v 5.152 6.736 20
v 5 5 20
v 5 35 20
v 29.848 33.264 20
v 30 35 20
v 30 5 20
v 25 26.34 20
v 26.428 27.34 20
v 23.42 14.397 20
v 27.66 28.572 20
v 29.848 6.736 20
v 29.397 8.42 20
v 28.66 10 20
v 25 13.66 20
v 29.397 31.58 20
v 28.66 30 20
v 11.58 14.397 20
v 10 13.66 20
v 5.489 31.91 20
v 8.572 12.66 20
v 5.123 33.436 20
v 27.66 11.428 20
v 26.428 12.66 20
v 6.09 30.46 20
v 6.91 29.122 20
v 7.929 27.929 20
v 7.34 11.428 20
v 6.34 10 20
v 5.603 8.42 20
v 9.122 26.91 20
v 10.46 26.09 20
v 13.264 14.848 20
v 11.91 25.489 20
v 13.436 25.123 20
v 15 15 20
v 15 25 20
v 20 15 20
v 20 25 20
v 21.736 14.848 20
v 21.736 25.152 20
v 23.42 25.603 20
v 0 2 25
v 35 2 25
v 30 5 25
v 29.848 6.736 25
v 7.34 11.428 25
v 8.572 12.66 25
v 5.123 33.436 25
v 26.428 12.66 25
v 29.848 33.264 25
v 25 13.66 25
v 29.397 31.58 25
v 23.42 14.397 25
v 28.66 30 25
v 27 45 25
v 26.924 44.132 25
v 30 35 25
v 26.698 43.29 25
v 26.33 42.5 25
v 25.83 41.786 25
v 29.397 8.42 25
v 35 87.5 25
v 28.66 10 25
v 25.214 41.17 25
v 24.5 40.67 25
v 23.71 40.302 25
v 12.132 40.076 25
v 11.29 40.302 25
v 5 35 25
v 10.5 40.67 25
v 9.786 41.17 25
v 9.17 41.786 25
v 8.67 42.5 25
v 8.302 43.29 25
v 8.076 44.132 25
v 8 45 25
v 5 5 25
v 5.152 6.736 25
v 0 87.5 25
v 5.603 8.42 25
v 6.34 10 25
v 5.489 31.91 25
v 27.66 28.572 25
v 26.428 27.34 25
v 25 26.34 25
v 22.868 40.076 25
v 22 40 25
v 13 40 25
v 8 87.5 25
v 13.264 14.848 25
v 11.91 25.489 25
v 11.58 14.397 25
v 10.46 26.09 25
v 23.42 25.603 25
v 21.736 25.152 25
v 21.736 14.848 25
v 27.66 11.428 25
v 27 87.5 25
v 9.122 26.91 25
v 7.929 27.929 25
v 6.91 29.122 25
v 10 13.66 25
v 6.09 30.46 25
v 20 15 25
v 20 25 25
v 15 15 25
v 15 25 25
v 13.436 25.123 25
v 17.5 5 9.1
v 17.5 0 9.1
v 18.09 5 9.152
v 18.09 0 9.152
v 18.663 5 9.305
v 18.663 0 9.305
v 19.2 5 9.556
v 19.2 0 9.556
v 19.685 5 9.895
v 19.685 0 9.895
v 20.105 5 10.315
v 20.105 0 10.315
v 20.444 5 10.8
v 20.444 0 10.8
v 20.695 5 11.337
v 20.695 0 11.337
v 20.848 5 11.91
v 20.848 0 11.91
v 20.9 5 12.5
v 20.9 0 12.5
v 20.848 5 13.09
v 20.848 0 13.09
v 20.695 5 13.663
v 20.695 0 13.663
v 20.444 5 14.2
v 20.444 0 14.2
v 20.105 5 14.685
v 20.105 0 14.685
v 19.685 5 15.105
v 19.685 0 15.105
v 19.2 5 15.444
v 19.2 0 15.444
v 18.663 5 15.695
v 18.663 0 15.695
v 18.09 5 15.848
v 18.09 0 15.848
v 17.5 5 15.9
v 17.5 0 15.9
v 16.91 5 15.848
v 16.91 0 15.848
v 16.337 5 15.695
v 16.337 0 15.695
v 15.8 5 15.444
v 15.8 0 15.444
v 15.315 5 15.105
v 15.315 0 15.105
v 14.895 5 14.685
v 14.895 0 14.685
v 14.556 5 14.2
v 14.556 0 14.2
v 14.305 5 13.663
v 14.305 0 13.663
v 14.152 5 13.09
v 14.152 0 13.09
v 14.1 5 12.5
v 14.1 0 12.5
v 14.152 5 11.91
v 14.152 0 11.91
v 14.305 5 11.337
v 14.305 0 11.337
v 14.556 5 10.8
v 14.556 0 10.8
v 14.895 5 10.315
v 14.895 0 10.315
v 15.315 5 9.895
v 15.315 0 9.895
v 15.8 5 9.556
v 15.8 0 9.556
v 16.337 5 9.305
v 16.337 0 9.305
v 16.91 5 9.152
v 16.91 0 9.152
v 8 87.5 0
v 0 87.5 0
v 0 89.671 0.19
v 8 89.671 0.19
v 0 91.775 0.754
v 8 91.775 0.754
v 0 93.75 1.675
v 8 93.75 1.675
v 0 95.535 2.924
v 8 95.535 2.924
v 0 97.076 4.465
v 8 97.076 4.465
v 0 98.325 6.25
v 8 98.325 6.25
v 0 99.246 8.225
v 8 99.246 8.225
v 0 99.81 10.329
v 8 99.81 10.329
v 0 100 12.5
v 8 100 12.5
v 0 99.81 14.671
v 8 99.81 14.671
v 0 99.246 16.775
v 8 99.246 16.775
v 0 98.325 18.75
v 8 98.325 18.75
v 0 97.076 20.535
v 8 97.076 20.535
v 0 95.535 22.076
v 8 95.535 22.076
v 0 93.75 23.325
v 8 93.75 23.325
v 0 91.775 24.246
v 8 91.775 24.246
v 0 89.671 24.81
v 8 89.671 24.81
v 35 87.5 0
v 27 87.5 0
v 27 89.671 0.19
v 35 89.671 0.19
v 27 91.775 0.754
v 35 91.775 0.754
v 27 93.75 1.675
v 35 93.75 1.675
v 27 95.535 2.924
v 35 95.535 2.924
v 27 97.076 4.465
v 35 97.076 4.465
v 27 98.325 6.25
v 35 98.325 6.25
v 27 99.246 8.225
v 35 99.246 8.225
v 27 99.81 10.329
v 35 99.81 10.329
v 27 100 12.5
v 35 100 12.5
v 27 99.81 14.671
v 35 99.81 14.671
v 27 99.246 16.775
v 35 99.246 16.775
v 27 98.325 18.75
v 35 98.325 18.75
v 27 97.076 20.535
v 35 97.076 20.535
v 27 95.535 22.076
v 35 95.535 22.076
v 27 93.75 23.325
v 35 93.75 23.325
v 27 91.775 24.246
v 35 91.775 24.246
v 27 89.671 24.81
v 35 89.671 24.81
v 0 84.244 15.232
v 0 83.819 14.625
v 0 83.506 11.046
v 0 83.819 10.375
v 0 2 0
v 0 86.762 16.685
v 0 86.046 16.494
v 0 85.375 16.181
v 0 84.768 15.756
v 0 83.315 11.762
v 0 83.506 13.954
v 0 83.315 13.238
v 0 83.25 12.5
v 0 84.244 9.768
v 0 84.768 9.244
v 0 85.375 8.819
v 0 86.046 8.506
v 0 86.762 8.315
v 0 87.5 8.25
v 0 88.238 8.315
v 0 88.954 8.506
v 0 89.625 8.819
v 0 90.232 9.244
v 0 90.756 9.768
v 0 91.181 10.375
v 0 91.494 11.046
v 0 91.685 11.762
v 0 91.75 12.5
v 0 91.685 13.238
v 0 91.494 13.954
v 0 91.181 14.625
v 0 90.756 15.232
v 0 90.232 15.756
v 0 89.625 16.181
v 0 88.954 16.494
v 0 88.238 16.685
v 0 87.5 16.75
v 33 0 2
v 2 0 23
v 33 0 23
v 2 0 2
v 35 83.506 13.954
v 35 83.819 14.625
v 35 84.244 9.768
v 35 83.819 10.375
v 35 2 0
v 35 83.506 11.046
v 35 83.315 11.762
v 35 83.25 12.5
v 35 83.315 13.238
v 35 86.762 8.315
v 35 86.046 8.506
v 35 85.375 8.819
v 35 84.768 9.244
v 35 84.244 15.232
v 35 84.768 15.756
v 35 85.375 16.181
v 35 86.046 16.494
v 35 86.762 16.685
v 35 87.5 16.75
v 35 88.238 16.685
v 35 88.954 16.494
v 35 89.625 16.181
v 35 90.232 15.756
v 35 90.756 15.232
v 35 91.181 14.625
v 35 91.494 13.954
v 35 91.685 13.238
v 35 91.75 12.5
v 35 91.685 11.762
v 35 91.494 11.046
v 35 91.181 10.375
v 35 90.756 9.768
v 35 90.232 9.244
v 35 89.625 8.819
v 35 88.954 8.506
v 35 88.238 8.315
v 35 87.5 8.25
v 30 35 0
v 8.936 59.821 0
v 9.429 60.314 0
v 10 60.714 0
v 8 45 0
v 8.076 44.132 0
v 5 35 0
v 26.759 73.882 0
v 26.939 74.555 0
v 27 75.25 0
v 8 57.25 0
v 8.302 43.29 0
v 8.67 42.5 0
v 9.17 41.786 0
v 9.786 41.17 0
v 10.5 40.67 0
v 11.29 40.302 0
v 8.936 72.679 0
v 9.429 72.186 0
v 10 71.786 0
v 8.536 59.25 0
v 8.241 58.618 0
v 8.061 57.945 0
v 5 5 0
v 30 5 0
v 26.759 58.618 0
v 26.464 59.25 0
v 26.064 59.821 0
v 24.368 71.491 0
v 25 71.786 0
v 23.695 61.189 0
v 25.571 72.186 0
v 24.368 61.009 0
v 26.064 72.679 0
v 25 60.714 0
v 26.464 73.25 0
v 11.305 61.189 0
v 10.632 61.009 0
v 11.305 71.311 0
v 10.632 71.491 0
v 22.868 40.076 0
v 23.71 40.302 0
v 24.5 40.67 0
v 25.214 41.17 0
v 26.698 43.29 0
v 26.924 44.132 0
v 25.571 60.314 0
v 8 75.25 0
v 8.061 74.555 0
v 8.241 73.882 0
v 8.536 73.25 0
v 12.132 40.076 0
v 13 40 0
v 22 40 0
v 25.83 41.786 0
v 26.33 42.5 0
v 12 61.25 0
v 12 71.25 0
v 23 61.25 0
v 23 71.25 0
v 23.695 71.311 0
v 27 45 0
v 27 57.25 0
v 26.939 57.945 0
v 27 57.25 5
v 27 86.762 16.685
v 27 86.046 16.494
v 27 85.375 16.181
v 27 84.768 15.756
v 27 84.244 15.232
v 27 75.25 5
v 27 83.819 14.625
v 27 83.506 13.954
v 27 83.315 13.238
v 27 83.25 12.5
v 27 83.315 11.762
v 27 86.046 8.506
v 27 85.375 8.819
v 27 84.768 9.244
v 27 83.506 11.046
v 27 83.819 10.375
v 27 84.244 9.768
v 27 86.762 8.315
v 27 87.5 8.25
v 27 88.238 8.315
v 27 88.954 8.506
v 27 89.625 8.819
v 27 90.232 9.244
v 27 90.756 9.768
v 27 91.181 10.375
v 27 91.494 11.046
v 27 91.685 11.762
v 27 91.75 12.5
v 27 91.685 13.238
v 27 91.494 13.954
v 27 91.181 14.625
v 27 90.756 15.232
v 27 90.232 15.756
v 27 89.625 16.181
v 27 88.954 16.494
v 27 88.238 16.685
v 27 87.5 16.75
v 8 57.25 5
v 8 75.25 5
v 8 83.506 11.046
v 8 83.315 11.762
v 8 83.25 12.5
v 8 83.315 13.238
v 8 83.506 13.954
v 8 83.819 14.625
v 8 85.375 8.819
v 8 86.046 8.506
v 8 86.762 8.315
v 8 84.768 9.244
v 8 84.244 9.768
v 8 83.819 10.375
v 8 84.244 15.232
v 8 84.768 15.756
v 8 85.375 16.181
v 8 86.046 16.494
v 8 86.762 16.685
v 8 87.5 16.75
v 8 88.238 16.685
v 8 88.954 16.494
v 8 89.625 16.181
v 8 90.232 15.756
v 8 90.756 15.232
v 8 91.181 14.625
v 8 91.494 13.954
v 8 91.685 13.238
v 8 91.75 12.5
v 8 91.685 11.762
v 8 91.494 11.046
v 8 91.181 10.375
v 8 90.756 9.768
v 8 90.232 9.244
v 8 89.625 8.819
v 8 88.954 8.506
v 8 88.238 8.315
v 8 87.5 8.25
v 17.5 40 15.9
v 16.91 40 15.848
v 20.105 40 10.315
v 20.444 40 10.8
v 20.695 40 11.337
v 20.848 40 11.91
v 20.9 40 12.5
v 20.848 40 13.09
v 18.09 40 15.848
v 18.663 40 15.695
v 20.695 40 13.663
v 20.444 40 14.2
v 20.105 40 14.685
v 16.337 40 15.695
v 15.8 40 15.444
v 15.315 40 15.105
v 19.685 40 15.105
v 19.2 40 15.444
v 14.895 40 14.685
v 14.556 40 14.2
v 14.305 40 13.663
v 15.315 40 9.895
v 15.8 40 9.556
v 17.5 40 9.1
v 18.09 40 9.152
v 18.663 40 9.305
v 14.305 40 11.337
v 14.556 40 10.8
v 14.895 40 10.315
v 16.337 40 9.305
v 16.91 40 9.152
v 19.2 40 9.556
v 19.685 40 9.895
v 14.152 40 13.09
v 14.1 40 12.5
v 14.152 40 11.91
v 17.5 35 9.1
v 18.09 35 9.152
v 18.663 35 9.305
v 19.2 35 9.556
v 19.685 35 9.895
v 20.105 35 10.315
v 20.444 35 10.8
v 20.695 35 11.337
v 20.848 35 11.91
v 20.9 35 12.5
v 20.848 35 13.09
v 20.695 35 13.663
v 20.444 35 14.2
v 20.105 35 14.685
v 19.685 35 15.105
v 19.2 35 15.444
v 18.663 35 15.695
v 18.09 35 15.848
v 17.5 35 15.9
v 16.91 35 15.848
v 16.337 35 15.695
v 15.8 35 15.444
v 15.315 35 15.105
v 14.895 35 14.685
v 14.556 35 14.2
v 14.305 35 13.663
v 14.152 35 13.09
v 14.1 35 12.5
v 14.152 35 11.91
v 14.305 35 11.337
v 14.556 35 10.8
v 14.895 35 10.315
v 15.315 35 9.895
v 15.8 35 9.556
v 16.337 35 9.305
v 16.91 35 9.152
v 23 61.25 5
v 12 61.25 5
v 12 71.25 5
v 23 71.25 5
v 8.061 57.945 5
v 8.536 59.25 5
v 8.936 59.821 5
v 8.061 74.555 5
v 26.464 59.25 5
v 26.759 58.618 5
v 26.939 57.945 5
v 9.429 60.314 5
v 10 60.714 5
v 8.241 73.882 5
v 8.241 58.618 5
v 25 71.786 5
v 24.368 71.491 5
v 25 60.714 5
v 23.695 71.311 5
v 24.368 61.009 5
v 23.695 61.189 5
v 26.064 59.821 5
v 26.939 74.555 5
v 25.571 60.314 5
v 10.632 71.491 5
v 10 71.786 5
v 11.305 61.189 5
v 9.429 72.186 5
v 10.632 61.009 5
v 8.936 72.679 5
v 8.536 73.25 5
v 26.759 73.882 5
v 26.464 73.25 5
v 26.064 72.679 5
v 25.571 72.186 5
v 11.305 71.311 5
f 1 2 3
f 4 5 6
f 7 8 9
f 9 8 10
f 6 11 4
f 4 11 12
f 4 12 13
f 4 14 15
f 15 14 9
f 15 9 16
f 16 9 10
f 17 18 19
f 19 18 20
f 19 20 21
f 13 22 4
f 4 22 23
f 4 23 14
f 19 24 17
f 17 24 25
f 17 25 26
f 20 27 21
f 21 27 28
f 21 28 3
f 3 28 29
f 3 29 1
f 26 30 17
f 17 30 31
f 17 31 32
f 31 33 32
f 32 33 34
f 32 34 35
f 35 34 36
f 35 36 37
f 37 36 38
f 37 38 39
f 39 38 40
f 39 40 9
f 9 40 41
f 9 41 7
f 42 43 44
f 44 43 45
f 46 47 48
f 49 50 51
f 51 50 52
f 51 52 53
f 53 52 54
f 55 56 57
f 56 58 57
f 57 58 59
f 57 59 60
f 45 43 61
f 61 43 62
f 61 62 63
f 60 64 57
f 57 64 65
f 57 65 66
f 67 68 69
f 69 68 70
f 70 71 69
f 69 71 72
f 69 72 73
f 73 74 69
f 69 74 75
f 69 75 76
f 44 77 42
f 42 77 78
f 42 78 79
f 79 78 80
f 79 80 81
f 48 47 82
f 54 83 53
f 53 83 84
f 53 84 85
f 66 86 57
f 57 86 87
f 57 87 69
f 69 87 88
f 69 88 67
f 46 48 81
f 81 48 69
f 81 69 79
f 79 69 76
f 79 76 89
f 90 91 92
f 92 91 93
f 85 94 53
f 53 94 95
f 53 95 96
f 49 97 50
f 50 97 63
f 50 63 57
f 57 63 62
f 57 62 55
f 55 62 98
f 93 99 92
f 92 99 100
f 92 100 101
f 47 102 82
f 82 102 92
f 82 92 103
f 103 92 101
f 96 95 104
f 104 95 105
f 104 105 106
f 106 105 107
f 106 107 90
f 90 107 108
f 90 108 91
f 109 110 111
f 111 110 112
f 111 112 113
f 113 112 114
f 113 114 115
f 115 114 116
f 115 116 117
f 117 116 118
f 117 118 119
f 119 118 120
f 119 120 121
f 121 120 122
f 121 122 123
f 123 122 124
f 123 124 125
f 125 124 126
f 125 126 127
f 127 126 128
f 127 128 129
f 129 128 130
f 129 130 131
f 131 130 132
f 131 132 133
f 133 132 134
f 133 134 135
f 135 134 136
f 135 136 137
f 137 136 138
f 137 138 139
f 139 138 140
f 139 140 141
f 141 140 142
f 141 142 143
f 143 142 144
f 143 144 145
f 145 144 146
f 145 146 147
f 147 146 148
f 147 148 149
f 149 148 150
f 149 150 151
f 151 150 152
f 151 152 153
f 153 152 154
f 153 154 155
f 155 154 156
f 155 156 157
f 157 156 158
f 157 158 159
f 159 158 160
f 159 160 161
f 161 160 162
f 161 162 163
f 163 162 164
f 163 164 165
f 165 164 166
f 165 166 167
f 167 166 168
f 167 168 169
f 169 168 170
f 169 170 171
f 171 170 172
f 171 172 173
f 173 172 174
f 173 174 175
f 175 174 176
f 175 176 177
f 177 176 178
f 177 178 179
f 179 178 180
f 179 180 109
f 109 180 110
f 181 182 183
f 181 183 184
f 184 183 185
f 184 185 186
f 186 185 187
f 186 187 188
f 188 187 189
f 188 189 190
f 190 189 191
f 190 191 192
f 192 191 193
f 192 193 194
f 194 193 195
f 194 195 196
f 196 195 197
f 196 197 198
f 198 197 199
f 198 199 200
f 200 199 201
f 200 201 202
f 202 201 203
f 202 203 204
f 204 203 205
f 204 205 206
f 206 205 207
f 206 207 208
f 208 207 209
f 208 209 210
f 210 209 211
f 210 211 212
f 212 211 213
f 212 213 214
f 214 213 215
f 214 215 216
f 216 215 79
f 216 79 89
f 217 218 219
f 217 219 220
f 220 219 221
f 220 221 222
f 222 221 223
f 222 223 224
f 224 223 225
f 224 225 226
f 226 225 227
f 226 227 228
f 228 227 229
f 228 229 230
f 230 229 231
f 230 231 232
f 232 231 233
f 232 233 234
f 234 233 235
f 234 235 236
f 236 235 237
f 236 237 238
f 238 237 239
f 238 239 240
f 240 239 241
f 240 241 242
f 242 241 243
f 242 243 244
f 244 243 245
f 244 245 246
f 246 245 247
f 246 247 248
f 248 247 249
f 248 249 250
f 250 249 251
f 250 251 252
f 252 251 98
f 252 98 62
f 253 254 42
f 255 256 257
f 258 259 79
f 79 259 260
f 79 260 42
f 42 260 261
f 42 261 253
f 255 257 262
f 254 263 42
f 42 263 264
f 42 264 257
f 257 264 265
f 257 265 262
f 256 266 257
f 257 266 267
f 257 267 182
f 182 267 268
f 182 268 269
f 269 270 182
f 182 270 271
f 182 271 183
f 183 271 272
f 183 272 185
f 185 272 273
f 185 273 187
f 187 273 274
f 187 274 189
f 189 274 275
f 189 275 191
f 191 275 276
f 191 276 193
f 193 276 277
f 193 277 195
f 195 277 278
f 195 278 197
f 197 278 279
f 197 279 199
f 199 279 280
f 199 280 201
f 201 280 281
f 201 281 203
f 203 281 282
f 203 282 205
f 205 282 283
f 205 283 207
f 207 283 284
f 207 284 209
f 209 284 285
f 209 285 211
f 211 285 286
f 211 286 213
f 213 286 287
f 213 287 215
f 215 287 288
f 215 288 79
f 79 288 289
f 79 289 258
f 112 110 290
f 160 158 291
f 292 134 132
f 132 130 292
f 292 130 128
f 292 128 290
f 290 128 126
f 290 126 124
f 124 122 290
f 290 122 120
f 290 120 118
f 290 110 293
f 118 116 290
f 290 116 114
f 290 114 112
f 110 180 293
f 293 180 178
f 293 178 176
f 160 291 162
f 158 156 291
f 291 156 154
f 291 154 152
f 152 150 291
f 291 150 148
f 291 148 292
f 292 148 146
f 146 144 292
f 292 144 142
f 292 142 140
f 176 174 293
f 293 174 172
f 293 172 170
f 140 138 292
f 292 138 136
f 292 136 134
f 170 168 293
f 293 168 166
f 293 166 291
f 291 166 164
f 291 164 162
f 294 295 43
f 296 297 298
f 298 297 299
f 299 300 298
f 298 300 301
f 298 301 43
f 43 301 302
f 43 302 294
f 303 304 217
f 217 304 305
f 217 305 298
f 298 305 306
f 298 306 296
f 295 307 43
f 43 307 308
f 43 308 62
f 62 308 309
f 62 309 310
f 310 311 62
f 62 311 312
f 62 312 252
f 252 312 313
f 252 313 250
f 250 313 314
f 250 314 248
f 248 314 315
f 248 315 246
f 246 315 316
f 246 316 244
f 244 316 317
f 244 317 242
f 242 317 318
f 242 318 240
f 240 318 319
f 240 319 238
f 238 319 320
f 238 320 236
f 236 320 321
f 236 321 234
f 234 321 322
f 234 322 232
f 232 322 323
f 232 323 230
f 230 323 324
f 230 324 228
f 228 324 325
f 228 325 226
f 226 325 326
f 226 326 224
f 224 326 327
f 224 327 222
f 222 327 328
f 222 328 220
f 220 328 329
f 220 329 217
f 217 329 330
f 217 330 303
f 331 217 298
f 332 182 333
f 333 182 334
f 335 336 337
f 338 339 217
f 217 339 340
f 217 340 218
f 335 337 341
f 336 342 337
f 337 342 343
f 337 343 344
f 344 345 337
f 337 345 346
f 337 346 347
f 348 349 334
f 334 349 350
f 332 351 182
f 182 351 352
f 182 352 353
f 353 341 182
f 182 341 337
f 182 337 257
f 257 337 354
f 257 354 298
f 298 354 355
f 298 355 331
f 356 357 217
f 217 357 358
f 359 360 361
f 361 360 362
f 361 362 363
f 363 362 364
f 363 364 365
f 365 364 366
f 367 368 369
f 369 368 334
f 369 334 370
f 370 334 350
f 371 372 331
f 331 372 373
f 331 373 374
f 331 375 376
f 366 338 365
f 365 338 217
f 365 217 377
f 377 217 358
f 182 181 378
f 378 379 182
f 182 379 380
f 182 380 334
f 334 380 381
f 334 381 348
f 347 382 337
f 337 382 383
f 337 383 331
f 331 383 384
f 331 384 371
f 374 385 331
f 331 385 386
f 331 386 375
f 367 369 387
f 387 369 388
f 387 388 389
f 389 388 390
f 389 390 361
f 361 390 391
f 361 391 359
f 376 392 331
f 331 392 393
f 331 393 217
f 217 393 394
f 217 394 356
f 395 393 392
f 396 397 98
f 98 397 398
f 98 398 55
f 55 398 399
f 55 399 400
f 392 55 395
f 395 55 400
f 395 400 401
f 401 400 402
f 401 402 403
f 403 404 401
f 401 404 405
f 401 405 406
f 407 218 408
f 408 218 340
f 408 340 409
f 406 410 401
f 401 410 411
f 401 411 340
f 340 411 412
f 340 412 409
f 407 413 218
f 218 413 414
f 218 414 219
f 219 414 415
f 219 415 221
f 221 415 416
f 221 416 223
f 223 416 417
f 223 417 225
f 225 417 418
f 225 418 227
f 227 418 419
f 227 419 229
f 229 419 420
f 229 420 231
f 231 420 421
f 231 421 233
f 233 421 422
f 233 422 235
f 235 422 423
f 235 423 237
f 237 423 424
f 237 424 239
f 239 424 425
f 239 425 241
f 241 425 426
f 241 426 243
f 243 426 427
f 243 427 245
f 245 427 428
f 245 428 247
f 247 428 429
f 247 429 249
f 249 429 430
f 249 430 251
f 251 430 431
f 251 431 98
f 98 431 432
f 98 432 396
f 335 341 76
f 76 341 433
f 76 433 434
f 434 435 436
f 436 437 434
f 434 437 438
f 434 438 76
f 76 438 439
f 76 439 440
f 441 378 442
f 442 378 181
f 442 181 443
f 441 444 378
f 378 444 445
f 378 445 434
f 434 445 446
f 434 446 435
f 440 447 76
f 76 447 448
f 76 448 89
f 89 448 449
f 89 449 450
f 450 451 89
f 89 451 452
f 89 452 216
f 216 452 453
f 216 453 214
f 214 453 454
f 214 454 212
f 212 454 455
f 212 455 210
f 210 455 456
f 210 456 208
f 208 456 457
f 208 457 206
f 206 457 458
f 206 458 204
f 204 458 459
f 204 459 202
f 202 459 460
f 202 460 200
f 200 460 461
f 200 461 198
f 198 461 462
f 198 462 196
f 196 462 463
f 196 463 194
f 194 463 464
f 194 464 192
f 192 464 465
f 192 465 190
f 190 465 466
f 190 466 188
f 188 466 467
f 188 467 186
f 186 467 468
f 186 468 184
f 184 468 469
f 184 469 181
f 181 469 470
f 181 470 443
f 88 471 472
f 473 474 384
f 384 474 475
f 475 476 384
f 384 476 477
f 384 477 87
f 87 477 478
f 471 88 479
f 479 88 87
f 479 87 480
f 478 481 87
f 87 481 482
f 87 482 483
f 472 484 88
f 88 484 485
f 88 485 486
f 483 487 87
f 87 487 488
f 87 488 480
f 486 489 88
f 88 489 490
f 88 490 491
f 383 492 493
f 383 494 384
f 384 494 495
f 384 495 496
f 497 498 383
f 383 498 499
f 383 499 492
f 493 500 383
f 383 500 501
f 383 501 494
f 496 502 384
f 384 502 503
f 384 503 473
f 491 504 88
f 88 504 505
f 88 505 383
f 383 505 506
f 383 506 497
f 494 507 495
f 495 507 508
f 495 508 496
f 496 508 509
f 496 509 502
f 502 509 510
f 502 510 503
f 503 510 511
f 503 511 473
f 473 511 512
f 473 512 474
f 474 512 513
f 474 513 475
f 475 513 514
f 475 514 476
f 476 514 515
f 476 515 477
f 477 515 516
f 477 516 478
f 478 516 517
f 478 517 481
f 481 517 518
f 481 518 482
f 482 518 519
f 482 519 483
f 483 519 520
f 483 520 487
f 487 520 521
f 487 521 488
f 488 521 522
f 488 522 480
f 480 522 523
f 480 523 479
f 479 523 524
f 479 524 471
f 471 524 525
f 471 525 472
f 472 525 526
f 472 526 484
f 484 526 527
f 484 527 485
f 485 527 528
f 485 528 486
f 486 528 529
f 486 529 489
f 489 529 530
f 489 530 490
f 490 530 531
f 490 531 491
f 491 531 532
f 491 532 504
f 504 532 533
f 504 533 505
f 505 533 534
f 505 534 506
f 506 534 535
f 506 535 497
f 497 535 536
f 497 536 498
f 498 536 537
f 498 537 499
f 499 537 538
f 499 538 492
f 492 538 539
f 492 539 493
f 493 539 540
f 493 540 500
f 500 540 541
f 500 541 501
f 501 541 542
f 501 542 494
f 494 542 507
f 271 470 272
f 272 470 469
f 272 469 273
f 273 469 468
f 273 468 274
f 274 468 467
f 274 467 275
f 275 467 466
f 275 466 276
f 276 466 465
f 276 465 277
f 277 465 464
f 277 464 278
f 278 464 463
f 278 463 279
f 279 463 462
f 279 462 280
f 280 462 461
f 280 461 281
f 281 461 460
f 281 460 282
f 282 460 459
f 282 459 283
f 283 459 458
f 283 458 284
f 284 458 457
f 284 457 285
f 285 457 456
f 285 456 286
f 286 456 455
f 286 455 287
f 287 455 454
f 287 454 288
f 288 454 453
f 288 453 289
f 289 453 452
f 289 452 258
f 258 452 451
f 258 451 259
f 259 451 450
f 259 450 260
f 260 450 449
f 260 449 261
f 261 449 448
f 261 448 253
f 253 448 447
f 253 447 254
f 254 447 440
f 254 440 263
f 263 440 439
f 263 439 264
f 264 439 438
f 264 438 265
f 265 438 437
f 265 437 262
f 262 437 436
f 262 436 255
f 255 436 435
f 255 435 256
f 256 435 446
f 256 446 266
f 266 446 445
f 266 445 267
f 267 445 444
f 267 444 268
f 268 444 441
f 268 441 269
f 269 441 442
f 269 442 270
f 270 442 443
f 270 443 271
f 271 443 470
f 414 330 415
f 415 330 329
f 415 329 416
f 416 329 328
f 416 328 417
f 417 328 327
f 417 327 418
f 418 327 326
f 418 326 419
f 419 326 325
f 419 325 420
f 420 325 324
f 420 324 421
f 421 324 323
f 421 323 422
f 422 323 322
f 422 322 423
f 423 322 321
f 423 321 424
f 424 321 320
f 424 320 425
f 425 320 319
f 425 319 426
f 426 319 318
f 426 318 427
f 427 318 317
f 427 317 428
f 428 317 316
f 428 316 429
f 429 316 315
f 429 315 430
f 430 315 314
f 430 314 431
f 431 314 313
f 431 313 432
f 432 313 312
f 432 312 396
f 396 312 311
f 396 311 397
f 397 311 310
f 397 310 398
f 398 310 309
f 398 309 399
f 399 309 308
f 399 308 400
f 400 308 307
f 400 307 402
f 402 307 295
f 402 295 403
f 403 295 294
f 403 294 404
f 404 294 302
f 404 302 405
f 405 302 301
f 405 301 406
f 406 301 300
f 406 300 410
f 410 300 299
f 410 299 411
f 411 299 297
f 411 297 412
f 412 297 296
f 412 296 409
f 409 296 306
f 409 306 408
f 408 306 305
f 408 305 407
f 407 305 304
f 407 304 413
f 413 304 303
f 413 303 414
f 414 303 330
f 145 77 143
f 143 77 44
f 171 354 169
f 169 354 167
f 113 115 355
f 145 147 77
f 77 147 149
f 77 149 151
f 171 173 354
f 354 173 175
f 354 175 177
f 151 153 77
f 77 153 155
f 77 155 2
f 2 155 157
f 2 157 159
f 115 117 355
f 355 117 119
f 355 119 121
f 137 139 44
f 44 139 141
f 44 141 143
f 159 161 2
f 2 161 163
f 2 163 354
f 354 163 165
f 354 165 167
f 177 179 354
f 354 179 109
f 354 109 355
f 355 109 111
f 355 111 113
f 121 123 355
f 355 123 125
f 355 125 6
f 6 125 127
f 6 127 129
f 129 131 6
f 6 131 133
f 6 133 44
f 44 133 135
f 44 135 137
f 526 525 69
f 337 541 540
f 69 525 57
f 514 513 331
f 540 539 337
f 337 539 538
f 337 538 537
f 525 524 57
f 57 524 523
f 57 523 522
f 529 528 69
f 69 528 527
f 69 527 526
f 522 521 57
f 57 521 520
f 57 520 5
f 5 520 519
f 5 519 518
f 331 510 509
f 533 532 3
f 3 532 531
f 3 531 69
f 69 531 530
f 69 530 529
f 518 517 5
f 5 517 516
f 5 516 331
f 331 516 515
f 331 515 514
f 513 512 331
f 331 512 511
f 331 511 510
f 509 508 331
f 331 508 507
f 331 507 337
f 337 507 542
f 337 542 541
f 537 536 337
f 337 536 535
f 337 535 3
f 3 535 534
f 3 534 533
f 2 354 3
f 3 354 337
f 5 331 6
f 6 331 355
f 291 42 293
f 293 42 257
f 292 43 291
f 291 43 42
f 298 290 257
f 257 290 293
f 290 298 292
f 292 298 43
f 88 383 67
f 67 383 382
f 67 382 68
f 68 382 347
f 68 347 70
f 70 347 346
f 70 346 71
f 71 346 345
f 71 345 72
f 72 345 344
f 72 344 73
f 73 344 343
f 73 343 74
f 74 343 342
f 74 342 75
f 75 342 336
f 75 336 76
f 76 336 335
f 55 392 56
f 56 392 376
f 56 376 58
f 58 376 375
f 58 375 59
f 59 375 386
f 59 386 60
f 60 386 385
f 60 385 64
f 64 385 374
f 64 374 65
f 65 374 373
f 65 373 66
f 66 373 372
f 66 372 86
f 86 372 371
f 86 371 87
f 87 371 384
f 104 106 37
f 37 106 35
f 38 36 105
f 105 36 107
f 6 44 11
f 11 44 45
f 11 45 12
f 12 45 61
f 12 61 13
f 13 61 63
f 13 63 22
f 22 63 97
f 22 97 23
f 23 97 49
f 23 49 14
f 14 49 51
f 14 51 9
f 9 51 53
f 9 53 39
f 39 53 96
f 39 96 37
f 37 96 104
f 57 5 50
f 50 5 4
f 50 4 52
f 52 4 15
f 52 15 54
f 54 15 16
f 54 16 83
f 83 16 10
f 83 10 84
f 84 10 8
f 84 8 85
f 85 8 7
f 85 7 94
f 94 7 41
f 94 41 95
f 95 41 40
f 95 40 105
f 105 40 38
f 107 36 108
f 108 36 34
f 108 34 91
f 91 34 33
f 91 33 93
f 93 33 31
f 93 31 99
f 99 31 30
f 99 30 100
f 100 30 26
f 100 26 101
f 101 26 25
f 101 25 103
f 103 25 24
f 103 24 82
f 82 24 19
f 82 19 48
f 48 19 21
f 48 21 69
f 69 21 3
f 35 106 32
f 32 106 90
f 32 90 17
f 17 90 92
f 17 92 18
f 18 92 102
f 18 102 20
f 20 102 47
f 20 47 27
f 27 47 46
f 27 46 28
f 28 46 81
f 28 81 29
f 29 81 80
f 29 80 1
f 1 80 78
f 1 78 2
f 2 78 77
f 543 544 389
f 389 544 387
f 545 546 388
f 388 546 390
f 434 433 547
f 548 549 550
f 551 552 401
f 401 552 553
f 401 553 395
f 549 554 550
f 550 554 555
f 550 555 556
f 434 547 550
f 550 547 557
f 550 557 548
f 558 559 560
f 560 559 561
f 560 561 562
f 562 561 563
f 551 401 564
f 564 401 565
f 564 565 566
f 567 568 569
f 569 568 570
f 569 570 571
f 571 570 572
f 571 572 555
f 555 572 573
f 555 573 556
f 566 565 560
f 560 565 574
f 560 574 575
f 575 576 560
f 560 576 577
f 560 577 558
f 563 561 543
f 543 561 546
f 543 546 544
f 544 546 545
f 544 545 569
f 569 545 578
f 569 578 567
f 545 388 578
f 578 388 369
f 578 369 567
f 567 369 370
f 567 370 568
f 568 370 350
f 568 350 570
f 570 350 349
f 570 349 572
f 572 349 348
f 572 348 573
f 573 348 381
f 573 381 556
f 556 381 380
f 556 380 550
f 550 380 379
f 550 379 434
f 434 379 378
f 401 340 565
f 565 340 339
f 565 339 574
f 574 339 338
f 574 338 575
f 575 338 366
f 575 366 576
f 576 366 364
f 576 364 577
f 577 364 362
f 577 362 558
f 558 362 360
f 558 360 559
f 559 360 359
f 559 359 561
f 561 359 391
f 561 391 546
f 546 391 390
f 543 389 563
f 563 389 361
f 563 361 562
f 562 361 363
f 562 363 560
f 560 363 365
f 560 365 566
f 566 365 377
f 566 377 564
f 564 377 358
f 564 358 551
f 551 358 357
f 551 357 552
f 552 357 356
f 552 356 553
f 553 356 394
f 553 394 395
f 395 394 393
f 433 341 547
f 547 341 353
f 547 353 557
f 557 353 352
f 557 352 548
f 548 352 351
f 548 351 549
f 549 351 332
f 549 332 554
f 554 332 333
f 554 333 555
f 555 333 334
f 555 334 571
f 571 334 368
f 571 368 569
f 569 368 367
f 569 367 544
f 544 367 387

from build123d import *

# Parameters (mm, degrees)
SKETCH1_W           = 35
SKETCH1_H           = 100
BOSS_EXTRUDE1_DEPTH = 25
SKETCH2_W           = 19
SKETCH2_H           = 120
CUT_EXTRUDE1_DEPTH  = 25
FILLET2_RADIUS      = 12.5
FILLET2_LENGTH      = 8
FILLET3_RADIUS      = 12.5
FILLET3_LENGTH      = 8
SKETCH3_R           = 3.4
CUT_EXTRUDE2_DEPTH  = 70
SKETCH4_R           = 4.25
CUT_EXTRUDE3_DEPTH  = 45
SKETCH5_W           = 25
SKETCH5_H           = 30
CUT_EXTRUDE4_DEPTH  = 20
CHAMFER1_SIZE       = 2
FILLET4_R           = 5
SKETCH6_W           = 25
SKETCH6_H           = 10
CUT_EXTRUDE5_DEPTH  = 108.819293264
FILLET5_R           = 10
SKETCH7_W           = 19
SKETCH7_H           = 10
BOSS_EXTRUDE2_DEPTH = 5
FILLET6_R           = 4


with BuildPart() as part:
    # Sketch1 → Boss-Extrude1 (new body)
    with BuildSketch(Plane.XY):
        with Locations((17.5, 50)):
            Rectangle(SKETCH1_W, SKETCH1_H)
    extrude(amount=BOSS_EXTRUDE1_DEPTH)

    # Sketch2 → Cut-Extrude1 (cut)
    with BuildSketch(Plane.XY.offset(25)):
        with Locations((17.5, 100)):
            Rectangle(SKETCH2_W, SKETCH2_H)
    extrude(amount=-CUT_EXTRUDE1_DEPTH, mode=Mode.SUBTRACT)

    # Fillet2: full round fillet: the end face becomes a half cylinder, R = half its width
    fillet2_face = Plane((31, 100, 12.5), x_dir=(1, 0, 0), z_dir=(0, 1, 0))  # on the end face: x along it, z out of the body
    fillet2_slab = fillet2_face.offset(-FILLET2_RADIUS / 2) * Box(FILLET2_LENGTH, 2 * FILLET2_RADIUS, FILLET2_RADIUS, mode=Mode.PRIVATE)  # the body's end, R deep
    fillet2_round = Plane((31, 87.5, 12.5), x_dir=(0, 1, 0), z_dir=(1, 0, 0)) * Cylinder(FILLET2_RADIUS, FILLET2_LENGTH, mode=Mode.PRIVATE)  # its axis R under the face
    add(fillet2_slab - fillet2_round, mode=Mode.SUBTRACT)

    # Fillet3: full round fillet: the end face becomes a half cylinder, R = half its width
    fillet3_face = Plane((4, 100, 12.5), x_dir=(-1, 0, 0), z_dir=(0, 1, 0))  # on the end face: x along it, z out of the body
    fillet3_slab = fillet3_face.offset(-FILLET3_RADIUS / 2) * Box(FILLET3_LENGTH, 2 * FILLET3_RADIUS, FILLET3_RADIUS, mode=Mode.PRIVATE)  # the body's end, R deep
    fillet3_round = Plane((4, 87.5, 12.5), x_dir=(0, 1, 0), z_dir=(-1, 0, 0)) * Cylinder(FILLET3_RADIUS, FILLET3_LENGTH, mode=Mode.PRIVATE)  # its axis R under the face
    add(fillet3_slab - fillet3_round, mode=Mode.SUBTRACT)

    # Sketch3 → Cut-Extrude2 (cut)
    with BuildSketch(Plane.XZ):
        with Locations(Location((17.5, 12.5, 0), (0, 0, 270))):
            Circle(SKETCH3_R)
    extrude(amount=-CUT_EXTRUDE2_DEPTH, mode=Mode.SUBTRACT)

    # Sketch4 → Cut-Extrude3 (cut)
    with BuildSketch(Plane(origin=(35, 0, 0), x_dir=(0, 0, -1), z_dir=(1, 0, 0))):
        with Locations((-12.5, 87.5)):
            Circle(SKETCH4_R)
    extrude(amount=-CUT_EXTRUDE3_DEPTH, mode=Mode.SUBTRACT)

    # Sketch5 → Cut-Extrude4 (cut)
    with BuildSketch(Plane(origin=(0, 0, 0), x_dir=(-1, 0, 0), z_dir=(0, 0, -1))):
        with Locations((-17.5, 20)):
            Rectangle(SKETCH5_W, SKETCH5_H)
    extrude(amount=-CUT_EXTRUDE4_DEPTH, mode=Mode.SUBTRACT)

    # Chamfer1
    chamfer1_edges = [part.edges().sort_by_distance(p)[0] for p in [
        (17.5, 0, 0),
        (35, 0, 12.5),
        (0, 0, 12.5),
        (17.5, 0, 25),
    ]]
    chamfer(chamfer1_edges, length=CHAMFER1_SIZE)

    # Fillet4
    fillet4_edges = [part.edges().sort_by_distance(p)[0] for p in [
        (8, 40, 12.5),
        (27, 40, 12.5),
    ]]
    fillet(fillet4_edges, radius=FILLET4_R)

    # Sketch6 → Cut-Extrude5 (cut, through all)
    with BuildSketch(Plane(origin=(0, 0, 20), x_dir=(-1, 0, 0), z_dir=(0, 0, -1))):
        with Locations((-17.5, 30)):
            Rectangle(SKETCH6_W, SKETCH6_H)
        with Locations((-17.5, 10)):
            Rectangle(SKETCH6_W, SKETCH6_H)
    extrude(amount=-CUT_EXTRUDE5_DEPTH, mode=Mode.SUBTRACT)

    # Fillet5
    fillet5_edges = [part.edges().sort_by_distance(p)[0] for p in [
        (30, 15, 22.5),
        (30, 25, 22.5),
        (5, 25, 22.5),
        (5, 15, 22.5),
    ]]
    fillet(fillet5_edges, radius=FILLET5_R - 0.0001)  # a hair under: the kernel refuses the full size

    # Sketch7 → Boss-Extrude2 (add)
    with BuildSketch(Plane(origin=(0, 0, 0), x_dir=(-1, 0, 0), z_dir=(0, 0, -1))):
        with Locations((-17.5, 66.25)):
            Rectangle(SKETCH7_W, SKETCH7_H)
    extrude(amount=-BOSS_EXTRUDE2_DEPTH)

    # Fillet6
    fillet6_edges = [part.edges().sort_by_distance(p)[0] for p in [
        (8, 71.25, 2.5),
        (8, 61.25, 2.5),
        (27, 61.25, 2.5),
        (27, 71.25, 2.5),
    ]]
    fillet(fillet6_edges, radius=FILLET6_R)


solid = part.part
